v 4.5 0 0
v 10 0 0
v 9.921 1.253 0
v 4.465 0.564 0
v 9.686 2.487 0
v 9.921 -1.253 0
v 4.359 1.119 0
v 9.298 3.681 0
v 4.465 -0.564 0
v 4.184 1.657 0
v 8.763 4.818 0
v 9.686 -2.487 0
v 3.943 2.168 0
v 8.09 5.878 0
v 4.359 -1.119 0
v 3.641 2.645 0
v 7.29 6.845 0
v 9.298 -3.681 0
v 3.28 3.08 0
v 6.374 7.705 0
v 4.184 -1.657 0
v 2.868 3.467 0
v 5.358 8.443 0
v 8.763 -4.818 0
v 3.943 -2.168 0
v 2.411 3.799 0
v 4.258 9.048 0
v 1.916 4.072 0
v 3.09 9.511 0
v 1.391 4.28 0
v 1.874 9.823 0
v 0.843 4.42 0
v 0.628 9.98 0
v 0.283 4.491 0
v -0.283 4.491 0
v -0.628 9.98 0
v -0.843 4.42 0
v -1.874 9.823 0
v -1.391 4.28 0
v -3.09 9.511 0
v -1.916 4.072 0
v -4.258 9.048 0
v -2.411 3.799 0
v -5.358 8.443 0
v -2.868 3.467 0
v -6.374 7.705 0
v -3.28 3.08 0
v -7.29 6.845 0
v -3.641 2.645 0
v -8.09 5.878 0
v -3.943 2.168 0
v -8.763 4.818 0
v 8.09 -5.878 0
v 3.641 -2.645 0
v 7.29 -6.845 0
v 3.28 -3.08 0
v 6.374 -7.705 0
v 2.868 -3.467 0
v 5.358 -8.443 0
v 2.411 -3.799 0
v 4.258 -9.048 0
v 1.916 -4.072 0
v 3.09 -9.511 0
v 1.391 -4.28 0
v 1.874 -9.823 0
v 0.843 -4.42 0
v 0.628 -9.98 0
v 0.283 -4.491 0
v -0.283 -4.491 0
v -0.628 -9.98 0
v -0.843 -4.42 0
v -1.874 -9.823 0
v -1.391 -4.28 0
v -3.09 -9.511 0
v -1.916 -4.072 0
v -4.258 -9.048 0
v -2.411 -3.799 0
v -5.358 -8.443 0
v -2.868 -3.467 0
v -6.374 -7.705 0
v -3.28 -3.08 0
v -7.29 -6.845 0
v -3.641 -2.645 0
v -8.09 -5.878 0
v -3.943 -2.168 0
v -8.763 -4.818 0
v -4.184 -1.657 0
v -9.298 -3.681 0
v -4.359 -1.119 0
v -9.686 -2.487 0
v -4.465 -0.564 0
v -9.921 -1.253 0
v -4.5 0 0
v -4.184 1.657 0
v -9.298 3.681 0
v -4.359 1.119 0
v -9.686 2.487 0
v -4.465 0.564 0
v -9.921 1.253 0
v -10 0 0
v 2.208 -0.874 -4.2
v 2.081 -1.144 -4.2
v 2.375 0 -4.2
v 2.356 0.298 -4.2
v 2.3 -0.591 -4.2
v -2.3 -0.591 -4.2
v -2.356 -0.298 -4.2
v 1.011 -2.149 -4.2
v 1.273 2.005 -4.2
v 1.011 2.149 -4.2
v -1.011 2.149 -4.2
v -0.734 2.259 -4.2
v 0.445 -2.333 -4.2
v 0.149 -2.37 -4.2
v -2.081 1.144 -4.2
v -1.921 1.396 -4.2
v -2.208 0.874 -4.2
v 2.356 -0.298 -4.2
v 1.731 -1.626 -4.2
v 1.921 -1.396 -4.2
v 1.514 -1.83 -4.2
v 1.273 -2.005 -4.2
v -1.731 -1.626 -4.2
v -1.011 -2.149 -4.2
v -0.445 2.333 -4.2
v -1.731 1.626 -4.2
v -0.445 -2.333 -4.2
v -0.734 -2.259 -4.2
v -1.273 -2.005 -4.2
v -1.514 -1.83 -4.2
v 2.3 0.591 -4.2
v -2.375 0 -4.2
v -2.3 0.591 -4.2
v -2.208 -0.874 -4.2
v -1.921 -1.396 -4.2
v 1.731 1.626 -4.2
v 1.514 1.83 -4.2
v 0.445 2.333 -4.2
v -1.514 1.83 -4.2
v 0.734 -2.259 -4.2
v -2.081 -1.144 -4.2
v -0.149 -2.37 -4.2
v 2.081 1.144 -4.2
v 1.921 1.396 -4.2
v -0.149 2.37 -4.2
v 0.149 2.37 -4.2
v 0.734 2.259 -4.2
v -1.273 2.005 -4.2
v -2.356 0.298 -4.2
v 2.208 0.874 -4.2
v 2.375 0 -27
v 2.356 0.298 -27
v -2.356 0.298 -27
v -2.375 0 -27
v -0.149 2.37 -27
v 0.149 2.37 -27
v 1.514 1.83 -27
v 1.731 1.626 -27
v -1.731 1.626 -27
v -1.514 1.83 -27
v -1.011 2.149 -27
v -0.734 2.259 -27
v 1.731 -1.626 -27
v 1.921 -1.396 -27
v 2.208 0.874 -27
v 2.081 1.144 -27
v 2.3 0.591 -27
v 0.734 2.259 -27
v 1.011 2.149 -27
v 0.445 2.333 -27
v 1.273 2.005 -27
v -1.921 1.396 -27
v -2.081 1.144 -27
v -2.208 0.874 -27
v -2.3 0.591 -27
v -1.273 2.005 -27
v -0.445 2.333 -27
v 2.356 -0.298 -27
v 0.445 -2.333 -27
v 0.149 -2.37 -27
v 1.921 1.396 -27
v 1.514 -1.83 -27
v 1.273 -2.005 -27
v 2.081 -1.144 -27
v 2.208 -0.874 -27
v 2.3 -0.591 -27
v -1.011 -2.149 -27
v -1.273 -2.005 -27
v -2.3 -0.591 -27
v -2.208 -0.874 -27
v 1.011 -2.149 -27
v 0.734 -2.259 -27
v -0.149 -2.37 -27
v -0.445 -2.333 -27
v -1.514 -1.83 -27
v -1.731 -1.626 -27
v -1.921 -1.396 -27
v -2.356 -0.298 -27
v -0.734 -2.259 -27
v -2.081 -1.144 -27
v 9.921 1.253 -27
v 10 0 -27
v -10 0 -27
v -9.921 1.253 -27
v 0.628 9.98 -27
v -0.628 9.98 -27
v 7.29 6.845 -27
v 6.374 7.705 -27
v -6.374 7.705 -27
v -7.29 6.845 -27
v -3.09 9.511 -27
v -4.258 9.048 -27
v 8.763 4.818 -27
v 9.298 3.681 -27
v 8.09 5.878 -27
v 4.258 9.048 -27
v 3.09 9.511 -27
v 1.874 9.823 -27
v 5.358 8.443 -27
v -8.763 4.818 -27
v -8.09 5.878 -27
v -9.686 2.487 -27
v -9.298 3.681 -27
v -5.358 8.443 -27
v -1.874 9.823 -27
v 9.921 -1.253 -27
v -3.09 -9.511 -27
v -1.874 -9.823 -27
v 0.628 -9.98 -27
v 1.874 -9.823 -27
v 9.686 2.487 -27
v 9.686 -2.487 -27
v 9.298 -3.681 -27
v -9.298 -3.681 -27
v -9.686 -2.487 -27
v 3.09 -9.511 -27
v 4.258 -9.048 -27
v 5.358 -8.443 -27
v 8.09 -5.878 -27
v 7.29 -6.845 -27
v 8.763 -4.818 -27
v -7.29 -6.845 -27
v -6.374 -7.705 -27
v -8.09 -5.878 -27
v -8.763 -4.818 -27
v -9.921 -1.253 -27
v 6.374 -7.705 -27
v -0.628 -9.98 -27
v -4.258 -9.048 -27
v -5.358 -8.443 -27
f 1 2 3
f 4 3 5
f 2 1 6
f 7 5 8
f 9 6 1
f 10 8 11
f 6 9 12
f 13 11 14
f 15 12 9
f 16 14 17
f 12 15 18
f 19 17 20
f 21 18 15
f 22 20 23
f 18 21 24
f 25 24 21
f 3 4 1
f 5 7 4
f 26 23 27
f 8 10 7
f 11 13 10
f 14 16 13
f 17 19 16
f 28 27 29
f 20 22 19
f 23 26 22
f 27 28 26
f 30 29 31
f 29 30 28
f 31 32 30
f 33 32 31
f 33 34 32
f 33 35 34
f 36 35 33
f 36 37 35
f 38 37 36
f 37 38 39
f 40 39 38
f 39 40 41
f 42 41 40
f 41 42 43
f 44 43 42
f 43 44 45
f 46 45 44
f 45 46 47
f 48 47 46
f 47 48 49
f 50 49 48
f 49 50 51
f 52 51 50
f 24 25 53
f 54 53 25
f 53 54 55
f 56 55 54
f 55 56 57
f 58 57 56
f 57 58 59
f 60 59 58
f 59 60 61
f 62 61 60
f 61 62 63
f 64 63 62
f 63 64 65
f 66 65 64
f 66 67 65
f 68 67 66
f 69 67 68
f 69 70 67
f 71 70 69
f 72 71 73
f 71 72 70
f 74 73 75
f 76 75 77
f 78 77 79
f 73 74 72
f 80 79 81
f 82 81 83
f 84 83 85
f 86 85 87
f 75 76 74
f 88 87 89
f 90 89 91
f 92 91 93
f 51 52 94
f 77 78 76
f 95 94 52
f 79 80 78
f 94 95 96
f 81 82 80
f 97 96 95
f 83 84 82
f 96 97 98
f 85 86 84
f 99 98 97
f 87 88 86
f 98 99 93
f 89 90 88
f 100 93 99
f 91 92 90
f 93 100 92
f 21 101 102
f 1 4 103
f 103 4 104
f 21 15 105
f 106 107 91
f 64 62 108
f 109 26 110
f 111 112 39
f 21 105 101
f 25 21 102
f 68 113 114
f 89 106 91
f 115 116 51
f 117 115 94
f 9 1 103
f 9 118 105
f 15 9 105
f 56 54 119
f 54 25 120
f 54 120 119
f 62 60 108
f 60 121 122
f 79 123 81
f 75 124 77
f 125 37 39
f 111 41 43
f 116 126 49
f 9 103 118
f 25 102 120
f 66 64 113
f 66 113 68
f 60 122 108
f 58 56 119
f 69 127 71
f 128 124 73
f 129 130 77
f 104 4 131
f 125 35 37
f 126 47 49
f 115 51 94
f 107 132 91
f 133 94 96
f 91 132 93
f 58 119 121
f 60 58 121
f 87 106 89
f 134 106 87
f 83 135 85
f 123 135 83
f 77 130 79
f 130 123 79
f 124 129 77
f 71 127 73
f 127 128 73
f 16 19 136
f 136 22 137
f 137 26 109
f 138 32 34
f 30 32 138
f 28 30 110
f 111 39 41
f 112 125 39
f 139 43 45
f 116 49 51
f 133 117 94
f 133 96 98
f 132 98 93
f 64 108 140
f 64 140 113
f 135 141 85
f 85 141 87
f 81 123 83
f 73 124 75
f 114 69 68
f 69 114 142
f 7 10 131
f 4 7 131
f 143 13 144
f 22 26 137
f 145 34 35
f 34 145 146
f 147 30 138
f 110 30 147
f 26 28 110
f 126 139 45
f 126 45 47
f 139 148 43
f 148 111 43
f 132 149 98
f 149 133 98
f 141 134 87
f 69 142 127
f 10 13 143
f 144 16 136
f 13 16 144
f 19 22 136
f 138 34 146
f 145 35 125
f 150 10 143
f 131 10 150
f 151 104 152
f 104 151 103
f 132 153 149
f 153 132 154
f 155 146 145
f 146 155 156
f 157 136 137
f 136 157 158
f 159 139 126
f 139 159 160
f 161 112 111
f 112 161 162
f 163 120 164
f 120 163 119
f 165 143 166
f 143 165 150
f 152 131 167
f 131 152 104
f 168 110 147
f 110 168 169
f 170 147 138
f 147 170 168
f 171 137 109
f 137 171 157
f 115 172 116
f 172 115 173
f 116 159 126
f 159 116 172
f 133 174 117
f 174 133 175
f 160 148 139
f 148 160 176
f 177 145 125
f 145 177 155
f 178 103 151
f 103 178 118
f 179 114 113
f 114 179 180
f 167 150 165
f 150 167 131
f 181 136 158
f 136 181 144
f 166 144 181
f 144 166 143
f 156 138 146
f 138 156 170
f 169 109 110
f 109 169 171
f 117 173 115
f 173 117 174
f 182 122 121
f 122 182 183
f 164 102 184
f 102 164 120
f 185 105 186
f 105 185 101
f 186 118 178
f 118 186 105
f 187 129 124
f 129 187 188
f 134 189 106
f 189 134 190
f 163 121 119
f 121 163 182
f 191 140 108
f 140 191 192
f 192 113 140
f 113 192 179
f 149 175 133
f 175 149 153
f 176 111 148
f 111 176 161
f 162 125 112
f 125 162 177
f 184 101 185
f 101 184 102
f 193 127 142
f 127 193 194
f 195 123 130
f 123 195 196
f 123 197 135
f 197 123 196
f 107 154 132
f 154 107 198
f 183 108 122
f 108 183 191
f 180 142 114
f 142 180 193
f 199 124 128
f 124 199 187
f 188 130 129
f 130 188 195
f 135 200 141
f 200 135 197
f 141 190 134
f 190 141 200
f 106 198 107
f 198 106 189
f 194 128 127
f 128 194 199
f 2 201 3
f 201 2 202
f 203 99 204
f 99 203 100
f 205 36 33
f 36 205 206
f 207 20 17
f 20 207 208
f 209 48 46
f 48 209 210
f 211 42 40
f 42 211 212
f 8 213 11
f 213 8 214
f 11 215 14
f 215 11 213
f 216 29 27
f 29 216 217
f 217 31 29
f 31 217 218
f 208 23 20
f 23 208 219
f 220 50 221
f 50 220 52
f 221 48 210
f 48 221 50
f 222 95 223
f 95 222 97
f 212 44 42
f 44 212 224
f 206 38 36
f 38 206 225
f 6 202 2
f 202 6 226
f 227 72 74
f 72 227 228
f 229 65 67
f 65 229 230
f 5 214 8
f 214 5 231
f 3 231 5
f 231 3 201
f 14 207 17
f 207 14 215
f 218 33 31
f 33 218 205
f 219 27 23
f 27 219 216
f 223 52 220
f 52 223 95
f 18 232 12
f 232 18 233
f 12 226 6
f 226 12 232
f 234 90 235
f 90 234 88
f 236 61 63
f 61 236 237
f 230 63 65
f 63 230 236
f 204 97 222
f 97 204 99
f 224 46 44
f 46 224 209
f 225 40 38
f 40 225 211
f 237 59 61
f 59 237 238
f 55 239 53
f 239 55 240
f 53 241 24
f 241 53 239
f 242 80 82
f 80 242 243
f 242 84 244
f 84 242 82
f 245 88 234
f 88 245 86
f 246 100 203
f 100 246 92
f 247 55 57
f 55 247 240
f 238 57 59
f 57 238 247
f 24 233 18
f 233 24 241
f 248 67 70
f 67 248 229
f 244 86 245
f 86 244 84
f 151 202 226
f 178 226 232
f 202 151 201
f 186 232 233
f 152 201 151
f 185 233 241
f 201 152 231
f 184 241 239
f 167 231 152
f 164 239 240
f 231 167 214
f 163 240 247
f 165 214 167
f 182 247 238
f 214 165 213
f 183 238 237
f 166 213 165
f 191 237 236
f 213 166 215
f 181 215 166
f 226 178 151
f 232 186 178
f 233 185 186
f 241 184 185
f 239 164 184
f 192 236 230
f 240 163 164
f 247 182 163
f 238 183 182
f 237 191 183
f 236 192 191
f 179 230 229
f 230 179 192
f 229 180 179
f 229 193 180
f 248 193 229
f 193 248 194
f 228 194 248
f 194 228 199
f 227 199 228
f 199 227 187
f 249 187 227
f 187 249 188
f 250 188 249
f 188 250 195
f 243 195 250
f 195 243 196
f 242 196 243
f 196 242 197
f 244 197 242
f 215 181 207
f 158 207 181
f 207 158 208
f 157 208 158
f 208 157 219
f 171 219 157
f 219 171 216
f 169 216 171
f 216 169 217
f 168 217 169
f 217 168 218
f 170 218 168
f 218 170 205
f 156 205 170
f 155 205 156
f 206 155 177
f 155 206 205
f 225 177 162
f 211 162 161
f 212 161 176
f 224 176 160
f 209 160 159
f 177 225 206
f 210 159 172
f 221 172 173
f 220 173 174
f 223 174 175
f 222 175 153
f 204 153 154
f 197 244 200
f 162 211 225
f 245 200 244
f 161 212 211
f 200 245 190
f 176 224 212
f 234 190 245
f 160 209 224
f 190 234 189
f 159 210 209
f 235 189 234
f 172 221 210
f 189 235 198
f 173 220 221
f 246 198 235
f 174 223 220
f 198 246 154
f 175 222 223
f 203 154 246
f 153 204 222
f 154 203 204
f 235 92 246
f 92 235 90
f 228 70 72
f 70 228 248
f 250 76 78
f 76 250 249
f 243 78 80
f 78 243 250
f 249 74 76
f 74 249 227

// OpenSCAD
$fn = 50;


difference() {
	union() {
		translate(v = [0, 0, -27.0000000000]) {
			cylinder(h = 27, r = 10.0000000000);
		}
	}
	union() {
		translate(v = [0, 0, 0]) {
			rotate(a = [0, 0, 0]) {
				difference() {
					union() {
						translate(v = [0, 0, -30.0000000000]) {
							cylinder(h = 30, r = 2.2500000000);
						}
						translate(v = [0, 0, -4.2000000000]) {
							cylinder(h = 4.2000000000, r1 = 2.3750000000, r2 = 4.5000000000);
						}
						translate(v = [0, 0, -30.0000000000]) {
							cylinder(h = 30, r = 2.3750000000);
						}
						translate(v = [0, 0, -30.0000000000]) {
							cylinder(h = 30, r = 2.2500000000);
						}
					}
					union();
				}
			}
		}
	}
}
